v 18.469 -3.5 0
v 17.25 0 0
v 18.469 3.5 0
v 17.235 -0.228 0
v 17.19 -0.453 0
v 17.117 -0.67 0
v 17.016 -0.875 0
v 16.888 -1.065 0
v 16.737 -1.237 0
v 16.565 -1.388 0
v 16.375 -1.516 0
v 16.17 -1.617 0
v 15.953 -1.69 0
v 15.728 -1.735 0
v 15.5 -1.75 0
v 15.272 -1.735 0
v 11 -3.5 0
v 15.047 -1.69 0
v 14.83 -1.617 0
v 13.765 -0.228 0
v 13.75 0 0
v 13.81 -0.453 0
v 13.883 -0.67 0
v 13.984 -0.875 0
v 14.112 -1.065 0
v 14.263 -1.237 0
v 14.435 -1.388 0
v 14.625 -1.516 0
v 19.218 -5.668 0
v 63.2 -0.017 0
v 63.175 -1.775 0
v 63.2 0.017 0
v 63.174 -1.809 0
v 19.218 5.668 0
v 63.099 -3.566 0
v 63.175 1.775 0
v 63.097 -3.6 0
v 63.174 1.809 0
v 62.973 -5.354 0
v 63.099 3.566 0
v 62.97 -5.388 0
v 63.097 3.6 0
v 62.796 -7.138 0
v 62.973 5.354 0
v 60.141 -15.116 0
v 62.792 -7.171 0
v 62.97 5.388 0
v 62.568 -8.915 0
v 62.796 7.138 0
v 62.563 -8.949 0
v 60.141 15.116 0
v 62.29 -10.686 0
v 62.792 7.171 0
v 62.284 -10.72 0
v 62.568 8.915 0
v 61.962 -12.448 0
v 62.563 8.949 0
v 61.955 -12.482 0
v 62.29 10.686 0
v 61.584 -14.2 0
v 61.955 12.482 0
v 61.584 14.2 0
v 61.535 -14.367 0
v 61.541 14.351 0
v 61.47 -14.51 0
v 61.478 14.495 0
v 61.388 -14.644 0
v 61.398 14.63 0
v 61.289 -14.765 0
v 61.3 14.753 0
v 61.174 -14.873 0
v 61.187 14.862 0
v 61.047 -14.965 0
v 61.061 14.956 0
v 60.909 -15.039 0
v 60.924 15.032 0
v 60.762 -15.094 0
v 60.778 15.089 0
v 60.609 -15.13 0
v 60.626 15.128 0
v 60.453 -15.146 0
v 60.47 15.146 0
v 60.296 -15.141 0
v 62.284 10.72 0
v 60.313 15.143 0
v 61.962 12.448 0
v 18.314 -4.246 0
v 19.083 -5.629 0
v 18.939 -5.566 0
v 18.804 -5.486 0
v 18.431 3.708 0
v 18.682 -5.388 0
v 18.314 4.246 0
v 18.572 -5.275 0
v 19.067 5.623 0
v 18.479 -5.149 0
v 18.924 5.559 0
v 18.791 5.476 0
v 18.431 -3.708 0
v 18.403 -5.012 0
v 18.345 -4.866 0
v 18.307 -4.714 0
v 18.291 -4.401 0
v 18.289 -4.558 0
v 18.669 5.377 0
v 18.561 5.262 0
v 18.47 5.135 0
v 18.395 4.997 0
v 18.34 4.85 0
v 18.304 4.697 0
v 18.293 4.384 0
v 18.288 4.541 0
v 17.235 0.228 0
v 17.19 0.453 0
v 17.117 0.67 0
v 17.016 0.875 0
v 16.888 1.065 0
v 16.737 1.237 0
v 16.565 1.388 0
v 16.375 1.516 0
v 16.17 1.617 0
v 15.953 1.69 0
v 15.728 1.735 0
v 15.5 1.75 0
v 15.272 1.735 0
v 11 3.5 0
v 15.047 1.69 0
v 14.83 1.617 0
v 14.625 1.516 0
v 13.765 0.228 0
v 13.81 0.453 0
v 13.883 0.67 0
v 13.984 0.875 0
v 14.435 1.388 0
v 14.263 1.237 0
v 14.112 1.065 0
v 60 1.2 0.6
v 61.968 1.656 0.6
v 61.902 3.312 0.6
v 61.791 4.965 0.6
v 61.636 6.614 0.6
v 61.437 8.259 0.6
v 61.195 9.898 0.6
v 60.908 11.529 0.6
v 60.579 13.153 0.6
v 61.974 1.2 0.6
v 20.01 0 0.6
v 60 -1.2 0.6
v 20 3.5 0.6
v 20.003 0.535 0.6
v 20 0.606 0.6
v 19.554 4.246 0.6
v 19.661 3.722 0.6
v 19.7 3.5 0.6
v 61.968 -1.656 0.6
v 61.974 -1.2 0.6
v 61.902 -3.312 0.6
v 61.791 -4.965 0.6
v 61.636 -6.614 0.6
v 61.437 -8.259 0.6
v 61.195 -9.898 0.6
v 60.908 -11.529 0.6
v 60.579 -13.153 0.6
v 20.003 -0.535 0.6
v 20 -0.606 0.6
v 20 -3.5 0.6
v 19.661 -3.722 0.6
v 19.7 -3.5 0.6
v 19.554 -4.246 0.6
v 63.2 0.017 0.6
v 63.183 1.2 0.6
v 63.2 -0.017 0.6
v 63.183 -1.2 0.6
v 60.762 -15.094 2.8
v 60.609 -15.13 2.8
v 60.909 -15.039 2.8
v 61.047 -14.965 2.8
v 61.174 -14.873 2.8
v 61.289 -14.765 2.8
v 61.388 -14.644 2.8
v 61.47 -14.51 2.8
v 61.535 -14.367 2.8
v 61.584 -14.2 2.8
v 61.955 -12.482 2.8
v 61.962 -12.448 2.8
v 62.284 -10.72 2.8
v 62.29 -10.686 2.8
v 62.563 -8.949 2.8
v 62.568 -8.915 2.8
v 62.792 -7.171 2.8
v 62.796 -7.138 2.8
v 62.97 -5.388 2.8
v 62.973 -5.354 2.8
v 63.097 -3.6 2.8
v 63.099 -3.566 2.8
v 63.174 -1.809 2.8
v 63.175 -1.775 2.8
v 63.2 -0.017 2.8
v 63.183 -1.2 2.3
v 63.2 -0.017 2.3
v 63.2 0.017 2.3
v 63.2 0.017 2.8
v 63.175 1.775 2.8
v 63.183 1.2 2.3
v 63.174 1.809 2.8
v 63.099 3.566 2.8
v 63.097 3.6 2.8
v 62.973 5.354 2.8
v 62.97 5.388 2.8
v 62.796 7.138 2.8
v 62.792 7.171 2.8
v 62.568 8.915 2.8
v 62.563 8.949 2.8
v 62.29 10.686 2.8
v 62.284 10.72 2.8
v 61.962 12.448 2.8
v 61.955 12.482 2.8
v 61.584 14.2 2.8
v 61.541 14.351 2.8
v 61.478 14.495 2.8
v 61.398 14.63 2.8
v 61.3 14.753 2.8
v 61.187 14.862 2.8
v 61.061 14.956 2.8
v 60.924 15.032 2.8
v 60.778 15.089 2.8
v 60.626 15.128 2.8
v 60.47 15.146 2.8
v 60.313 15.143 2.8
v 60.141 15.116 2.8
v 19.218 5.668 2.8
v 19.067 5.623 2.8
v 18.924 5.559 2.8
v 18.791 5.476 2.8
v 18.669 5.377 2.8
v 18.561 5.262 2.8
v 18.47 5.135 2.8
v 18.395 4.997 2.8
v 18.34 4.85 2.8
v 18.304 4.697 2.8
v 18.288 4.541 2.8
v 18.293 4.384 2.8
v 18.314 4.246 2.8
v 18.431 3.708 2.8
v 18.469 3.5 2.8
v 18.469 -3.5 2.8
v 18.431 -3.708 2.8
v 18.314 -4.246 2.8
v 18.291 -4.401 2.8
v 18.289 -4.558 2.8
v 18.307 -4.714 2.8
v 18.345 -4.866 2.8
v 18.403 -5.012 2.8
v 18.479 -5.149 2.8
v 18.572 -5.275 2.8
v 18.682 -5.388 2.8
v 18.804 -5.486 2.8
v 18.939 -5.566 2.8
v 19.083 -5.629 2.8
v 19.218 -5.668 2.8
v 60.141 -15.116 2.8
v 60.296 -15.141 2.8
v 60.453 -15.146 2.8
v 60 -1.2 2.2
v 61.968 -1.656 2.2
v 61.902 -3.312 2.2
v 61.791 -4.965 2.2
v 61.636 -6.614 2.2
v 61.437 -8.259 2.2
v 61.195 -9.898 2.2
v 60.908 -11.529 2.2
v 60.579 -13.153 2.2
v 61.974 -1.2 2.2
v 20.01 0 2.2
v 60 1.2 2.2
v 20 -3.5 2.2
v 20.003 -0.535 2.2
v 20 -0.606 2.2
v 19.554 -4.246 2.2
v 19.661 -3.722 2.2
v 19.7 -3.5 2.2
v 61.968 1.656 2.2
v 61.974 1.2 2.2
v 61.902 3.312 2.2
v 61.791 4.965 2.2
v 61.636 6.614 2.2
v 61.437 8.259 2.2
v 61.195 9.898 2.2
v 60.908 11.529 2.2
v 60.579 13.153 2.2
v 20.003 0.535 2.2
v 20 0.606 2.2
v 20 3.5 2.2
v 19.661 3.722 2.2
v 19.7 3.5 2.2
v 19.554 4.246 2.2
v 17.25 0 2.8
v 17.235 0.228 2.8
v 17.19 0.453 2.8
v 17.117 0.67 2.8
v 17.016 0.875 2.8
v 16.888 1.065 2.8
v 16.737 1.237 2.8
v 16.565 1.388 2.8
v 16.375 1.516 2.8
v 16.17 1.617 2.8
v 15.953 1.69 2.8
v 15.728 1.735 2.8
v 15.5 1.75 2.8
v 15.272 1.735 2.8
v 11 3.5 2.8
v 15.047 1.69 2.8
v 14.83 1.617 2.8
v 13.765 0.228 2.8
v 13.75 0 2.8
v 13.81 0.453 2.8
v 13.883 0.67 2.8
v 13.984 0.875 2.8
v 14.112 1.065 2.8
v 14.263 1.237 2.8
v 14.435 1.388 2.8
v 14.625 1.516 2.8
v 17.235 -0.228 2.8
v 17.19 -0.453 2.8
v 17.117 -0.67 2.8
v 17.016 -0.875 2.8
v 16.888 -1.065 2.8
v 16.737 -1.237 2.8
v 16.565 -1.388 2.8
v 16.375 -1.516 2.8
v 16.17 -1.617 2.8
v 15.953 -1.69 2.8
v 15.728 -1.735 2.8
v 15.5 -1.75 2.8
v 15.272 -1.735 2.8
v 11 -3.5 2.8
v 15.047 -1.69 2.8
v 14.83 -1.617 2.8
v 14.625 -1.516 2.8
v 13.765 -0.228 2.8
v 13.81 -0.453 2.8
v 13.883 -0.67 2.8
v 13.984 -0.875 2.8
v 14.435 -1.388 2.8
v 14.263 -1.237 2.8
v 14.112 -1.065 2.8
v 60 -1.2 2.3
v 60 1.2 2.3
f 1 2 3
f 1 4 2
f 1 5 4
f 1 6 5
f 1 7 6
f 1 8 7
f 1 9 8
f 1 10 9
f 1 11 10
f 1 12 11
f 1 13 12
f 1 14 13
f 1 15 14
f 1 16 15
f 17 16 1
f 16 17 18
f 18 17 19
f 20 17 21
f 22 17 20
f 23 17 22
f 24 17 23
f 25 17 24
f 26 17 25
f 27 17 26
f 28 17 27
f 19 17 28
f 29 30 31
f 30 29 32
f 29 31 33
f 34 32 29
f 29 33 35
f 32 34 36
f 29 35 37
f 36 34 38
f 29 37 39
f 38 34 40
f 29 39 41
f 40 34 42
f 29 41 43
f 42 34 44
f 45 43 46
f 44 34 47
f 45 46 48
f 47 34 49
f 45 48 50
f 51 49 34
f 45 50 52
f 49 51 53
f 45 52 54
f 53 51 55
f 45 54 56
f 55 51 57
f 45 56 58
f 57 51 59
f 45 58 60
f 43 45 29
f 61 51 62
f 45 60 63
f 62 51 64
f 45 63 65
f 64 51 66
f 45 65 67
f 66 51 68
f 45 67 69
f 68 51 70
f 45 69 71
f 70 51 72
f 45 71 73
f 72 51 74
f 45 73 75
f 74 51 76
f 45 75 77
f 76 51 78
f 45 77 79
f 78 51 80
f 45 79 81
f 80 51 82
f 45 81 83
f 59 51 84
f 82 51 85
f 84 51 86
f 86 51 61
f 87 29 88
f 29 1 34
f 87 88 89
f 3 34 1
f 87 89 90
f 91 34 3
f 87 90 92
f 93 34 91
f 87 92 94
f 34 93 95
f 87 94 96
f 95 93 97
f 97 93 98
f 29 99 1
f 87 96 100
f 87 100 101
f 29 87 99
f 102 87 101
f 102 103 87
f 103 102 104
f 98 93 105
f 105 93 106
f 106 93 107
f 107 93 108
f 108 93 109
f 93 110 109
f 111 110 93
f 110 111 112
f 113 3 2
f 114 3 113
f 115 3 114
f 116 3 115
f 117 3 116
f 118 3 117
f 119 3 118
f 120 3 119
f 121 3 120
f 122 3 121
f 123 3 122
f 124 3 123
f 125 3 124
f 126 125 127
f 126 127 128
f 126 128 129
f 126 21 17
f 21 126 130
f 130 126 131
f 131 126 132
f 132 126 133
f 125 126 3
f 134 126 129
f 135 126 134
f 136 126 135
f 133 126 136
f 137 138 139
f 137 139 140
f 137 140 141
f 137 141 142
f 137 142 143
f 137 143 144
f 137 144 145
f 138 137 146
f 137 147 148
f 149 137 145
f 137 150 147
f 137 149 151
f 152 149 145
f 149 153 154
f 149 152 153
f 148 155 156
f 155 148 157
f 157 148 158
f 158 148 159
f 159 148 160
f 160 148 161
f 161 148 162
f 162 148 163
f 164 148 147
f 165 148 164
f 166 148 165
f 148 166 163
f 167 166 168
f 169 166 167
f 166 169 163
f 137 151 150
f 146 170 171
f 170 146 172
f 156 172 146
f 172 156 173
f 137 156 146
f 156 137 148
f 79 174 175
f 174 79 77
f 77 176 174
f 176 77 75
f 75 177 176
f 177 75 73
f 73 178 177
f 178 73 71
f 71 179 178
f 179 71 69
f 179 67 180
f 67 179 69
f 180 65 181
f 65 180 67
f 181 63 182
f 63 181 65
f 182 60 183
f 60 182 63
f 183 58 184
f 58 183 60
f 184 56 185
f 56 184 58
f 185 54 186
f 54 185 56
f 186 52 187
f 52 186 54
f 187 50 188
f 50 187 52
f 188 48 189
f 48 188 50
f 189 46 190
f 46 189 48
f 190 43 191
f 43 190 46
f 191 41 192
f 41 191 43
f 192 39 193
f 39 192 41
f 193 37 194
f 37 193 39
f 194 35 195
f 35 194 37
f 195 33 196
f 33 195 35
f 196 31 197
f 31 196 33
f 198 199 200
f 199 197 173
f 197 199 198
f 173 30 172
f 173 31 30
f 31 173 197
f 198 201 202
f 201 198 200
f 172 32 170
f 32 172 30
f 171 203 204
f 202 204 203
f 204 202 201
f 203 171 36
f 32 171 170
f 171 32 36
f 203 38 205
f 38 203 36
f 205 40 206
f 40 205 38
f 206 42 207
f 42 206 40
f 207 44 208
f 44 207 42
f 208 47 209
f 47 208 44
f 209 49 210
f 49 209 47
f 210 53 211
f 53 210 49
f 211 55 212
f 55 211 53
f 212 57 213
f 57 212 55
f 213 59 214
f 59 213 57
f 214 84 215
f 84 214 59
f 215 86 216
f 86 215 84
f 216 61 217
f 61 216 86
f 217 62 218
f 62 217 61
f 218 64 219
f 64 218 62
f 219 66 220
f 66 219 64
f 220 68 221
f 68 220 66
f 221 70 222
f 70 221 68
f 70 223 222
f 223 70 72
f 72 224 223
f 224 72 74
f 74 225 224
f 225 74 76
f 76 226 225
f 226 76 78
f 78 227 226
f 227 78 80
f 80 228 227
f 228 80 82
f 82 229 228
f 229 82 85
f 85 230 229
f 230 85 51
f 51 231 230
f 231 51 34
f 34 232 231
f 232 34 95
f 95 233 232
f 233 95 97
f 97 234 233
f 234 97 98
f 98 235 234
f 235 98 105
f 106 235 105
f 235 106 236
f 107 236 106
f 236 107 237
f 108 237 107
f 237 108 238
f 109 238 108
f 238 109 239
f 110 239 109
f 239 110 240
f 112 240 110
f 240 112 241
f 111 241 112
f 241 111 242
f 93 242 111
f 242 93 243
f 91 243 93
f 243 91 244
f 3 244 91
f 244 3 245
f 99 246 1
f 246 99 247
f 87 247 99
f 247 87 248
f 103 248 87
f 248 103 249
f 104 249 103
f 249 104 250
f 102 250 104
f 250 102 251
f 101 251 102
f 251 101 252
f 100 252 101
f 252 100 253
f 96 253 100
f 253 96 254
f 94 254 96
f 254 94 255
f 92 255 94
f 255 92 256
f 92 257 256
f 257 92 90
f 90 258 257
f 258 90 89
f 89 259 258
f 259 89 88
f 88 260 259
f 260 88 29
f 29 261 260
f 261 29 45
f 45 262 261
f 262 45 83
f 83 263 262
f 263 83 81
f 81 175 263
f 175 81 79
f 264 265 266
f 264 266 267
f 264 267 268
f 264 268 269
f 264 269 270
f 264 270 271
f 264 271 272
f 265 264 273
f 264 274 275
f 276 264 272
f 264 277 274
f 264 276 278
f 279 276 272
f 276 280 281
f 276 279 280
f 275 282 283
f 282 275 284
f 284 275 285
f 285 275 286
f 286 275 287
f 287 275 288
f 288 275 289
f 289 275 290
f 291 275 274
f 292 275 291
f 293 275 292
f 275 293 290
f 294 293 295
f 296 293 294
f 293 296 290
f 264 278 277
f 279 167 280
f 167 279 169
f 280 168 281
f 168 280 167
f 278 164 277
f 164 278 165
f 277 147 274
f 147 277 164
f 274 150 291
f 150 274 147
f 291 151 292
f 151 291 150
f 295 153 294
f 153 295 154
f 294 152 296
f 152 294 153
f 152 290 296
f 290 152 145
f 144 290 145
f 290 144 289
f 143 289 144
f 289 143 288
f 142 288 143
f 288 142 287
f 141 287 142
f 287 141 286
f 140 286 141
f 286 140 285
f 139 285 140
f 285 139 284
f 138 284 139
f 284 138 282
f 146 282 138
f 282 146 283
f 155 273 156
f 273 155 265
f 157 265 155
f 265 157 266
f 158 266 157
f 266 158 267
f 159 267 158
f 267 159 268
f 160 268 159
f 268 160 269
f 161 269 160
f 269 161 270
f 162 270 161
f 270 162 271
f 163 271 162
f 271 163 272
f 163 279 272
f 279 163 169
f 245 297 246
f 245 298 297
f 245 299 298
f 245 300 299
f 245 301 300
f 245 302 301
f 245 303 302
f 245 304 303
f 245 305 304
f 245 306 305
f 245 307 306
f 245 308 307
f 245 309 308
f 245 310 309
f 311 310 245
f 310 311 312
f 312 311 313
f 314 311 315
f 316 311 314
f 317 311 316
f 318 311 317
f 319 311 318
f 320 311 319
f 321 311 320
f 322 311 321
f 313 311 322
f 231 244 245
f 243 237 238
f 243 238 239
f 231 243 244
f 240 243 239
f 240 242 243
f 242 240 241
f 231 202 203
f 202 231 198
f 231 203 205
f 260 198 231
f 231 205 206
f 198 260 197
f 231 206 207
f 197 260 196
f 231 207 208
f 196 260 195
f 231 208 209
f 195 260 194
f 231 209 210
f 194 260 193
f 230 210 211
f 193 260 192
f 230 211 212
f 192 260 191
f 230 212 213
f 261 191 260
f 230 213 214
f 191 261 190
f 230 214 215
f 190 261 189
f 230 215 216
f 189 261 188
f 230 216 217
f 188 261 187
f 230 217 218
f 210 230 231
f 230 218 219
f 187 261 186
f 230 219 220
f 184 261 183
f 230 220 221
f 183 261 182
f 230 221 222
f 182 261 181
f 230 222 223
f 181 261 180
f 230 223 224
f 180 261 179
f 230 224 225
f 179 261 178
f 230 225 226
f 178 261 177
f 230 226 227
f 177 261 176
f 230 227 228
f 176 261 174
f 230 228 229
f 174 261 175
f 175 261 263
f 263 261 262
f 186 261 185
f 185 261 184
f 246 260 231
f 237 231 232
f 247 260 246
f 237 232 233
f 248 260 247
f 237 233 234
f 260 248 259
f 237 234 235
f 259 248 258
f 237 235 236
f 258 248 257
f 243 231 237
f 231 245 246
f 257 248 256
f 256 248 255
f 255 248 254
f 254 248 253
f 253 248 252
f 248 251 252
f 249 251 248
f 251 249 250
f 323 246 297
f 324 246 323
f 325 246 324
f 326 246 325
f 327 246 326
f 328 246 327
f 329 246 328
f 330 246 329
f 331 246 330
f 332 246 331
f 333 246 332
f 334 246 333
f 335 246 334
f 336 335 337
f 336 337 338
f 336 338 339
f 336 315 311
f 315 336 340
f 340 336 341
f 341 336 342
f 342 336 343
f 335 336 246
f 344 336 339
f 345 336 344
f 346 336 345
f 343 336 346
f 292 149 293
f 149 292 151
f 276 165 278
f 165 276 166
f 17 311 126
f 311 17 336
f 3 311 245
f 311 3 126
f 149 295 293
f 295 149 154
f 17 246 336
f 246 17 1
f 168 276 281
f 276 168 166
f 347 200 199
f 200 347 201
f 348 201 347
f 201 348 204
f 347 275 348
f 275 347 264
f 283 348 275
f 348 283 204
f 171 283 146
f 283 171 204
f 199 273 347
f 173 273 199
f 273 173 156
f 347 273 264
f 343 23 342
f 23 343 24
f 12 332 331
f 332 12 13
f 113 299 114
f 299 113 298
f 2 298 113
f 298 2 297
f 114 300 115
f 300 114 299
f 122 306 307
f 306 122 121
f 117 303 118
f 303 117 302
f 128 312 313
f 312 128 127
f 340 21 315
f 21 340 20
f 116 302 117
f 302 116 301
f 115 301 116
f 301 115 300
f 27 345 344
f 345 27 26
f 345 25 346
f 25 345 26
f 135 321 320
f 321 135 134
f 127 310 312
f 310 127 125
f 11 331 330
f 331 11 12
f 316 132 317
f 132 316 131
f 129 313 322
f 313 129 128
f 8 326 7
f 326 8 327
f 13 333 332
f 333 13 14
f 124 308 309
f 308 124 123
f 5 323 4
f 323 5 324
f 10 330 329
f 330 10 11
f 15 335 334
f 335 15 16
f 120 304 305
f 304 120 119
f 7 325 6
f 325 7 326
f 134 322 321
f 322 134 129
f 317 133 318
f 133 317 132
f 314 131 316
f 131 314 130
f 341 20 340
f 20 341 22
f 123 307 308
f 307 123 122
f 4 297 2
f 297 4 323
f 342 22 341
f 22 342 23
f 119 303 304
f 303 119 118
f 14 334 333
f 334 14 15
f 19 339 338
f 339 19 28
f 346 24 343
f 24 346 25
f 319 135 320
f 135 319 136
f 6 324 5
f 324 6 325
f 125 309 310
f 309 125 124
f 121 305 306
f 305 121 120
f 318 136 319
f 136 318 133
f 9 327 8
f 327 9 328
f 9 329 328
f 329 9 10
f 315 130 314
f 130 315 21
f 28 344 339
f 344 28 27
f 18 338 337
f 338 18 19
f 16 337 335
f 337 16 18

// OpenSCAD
// file: parameters.scad
// =============================================================================
// Gen-AB Dual-rotor ULTRA-MICRO-GAP copper-max AFPM — WOUND-AWARE (HARD GATE)
// PRIMARY challenger vs Gen-Y. Thinner m2m + larger copper window + 160 t.
// =============================================================================

// --- Wire / wind budget (26 AWG, ~1 lb spool ≈ 390 m bare-equiv) --------------
wire_awg            = 26;
wire_od             = 0.45;     // insulated OD mm
turns               = 160;      // +10 vs Gen-Y 150
fill                = 0.70;
layers_per_face     = 2;        // axial layers proud of EACH flange
wind_build_axial    = layers_per_face * wire_od * fill;   // 0.63 mm
wind_build_radial   = 3 * wire_od * fill;                 // 0.945 mm

// --- Pancake former (bare STL) — thinner web/flange than Gen-Y ---------------
coil_id_r           = 20.0;     // larger copper window vs Gen-Y 21–60
coil_od_r           = 62.0;
span_deg            = 26.0;     // 12 stations × 30° pitch
former_web          = 1.6;      // print-safe min
flange_t            = 0.60;     // print-safe min (≥0.6)
wall                = 1.2;
slot_w              = 2.4;
mount_hole          = 3.5;
tab_len             = 7.0;

former_bare_h       = former_web + 2 * flange_t;            // 2.8 mm
coil_envelope_h     = former_bare_h + 2 * wind_build_axial; // 4.06 mm

// --- Running clearance (magnet face → WOUND face) EACH side ------------------
run_clear           = 0.58;     // PASS ≥ 0.5 (prefer ≥0.65; ultra-micro 0.55–0.60 band)
gap_spacer_h        = run_clear + wind_build_axial;         // 1.21 mm
m2m                 = coil_envelope_h + 2 * run_clear;      // 5.22 mm (beats Gen-Y 5.76)

// --- Mid stator (12 pancakes 3φ; winds proud both faces) ---------------------
coil_stations       = 12;
bay_r_in            = coil_id_r - 2.0 - wind_build_radial;
bay_r_out           = coil_od_r + 2.0 + wind_build_radial;
bay_span            = span_deg + 4.0;
bay_offset          = 2.0;
stator_thick        = former_bare_h;                        // winds proud ±Z
stator_od           = 156.0;
shaft_clear_stator  = 36.0;
coil_mount_r        = 28.0;

// --- Rotors (×2) — 8×Ø20 + 24×Ø5 Halbach each face ---------------------------
large_pocket_d      = 20.3;
small_pocket_d      = 5.3;
pocket_h            = 5.2;
large_n             = 8;
R_large             = 52.0;
R_small_inner       = 40.0;
R_small_mid         = 52.0;
R_small_outer       = 64.0;
carrier_od          = 152.0;
carrier_thick       = 7.5;
hub_h               = 10.0;
hub_od              = 30.0;
rotor_b_offset_deg  = 22.5;

// --- Modular MAX interface (Gen-E family) ------------------------------------
shaft_bore          = 8.35;
bearing_d           = 21.85;
bearing_h           = 7.2;
m3_clear            = 3.5;
bolt_r_inner        = 36.0;
bolt_n_inner        = 6;
flange_bolt_r       = 72.0;
flange_bolt_n       = 6;
brace_r             = 68.0;
brace_d             = 4.3;
brace_n             = 4;

spacer_pad_od       = 14.0;
spacer_pad_id       = m3_clear;
endbell_od          = 156.0;
endbell_thick       = 8.0;
endbell_shaft_clear = 10.0;

$fn = 64;
// main file
// Gen-AB pancake former — print ×12
// WOUND: wind_build_axial computed in parameters.scad; wind BEFORE assembly
include <parameters.scad>;
$fn = 48;

module sector_2d(r_in, r_out, ang) {
    polygon([
        for (a = [-ang/2 : ang/16 : ang/2]) [r_in*cos(a), r_in*sin(a)],
        for (a = [ang/2 : -ang/16 : -ang/2]) [r_out*cos(a), r_out*sin(a)]
    ]);
}
module flange() {
    linear_extrude(flange_t) offset(r=wall) sector_2d(coil_id_r, coil_od_r, span_deg);
}
difference() {
    union() {
        flange();
        translate([0, 0, flange_t])
            linear_extrude(former_web)
                difference() {
                    offset(r=wall) sector_2d(coil_id_r, coil_od_r, span_deg);
                    sector_2d(coil_id_r + 0.01, coil_od_r - 0.01, span_deg - 1.5);
                }
        translate([0, 0, flange_t + former_web]) flange();
        translate([coil_id_r - tab_len - 2, -3.5, 0])
            cube([tab_len + 2, 7, former_bare_h]);
    }
    translate([coil_od_r - 2, -slot_w/2, flange_t])
        cube([wall + 4, slot_w, former_web + 0.1]);
    translate([coil_id_r - tab_len/2 - 1, 0, -0.1])
        cylinder(d=mount_hole, h=former_bare_h + 1);
}
